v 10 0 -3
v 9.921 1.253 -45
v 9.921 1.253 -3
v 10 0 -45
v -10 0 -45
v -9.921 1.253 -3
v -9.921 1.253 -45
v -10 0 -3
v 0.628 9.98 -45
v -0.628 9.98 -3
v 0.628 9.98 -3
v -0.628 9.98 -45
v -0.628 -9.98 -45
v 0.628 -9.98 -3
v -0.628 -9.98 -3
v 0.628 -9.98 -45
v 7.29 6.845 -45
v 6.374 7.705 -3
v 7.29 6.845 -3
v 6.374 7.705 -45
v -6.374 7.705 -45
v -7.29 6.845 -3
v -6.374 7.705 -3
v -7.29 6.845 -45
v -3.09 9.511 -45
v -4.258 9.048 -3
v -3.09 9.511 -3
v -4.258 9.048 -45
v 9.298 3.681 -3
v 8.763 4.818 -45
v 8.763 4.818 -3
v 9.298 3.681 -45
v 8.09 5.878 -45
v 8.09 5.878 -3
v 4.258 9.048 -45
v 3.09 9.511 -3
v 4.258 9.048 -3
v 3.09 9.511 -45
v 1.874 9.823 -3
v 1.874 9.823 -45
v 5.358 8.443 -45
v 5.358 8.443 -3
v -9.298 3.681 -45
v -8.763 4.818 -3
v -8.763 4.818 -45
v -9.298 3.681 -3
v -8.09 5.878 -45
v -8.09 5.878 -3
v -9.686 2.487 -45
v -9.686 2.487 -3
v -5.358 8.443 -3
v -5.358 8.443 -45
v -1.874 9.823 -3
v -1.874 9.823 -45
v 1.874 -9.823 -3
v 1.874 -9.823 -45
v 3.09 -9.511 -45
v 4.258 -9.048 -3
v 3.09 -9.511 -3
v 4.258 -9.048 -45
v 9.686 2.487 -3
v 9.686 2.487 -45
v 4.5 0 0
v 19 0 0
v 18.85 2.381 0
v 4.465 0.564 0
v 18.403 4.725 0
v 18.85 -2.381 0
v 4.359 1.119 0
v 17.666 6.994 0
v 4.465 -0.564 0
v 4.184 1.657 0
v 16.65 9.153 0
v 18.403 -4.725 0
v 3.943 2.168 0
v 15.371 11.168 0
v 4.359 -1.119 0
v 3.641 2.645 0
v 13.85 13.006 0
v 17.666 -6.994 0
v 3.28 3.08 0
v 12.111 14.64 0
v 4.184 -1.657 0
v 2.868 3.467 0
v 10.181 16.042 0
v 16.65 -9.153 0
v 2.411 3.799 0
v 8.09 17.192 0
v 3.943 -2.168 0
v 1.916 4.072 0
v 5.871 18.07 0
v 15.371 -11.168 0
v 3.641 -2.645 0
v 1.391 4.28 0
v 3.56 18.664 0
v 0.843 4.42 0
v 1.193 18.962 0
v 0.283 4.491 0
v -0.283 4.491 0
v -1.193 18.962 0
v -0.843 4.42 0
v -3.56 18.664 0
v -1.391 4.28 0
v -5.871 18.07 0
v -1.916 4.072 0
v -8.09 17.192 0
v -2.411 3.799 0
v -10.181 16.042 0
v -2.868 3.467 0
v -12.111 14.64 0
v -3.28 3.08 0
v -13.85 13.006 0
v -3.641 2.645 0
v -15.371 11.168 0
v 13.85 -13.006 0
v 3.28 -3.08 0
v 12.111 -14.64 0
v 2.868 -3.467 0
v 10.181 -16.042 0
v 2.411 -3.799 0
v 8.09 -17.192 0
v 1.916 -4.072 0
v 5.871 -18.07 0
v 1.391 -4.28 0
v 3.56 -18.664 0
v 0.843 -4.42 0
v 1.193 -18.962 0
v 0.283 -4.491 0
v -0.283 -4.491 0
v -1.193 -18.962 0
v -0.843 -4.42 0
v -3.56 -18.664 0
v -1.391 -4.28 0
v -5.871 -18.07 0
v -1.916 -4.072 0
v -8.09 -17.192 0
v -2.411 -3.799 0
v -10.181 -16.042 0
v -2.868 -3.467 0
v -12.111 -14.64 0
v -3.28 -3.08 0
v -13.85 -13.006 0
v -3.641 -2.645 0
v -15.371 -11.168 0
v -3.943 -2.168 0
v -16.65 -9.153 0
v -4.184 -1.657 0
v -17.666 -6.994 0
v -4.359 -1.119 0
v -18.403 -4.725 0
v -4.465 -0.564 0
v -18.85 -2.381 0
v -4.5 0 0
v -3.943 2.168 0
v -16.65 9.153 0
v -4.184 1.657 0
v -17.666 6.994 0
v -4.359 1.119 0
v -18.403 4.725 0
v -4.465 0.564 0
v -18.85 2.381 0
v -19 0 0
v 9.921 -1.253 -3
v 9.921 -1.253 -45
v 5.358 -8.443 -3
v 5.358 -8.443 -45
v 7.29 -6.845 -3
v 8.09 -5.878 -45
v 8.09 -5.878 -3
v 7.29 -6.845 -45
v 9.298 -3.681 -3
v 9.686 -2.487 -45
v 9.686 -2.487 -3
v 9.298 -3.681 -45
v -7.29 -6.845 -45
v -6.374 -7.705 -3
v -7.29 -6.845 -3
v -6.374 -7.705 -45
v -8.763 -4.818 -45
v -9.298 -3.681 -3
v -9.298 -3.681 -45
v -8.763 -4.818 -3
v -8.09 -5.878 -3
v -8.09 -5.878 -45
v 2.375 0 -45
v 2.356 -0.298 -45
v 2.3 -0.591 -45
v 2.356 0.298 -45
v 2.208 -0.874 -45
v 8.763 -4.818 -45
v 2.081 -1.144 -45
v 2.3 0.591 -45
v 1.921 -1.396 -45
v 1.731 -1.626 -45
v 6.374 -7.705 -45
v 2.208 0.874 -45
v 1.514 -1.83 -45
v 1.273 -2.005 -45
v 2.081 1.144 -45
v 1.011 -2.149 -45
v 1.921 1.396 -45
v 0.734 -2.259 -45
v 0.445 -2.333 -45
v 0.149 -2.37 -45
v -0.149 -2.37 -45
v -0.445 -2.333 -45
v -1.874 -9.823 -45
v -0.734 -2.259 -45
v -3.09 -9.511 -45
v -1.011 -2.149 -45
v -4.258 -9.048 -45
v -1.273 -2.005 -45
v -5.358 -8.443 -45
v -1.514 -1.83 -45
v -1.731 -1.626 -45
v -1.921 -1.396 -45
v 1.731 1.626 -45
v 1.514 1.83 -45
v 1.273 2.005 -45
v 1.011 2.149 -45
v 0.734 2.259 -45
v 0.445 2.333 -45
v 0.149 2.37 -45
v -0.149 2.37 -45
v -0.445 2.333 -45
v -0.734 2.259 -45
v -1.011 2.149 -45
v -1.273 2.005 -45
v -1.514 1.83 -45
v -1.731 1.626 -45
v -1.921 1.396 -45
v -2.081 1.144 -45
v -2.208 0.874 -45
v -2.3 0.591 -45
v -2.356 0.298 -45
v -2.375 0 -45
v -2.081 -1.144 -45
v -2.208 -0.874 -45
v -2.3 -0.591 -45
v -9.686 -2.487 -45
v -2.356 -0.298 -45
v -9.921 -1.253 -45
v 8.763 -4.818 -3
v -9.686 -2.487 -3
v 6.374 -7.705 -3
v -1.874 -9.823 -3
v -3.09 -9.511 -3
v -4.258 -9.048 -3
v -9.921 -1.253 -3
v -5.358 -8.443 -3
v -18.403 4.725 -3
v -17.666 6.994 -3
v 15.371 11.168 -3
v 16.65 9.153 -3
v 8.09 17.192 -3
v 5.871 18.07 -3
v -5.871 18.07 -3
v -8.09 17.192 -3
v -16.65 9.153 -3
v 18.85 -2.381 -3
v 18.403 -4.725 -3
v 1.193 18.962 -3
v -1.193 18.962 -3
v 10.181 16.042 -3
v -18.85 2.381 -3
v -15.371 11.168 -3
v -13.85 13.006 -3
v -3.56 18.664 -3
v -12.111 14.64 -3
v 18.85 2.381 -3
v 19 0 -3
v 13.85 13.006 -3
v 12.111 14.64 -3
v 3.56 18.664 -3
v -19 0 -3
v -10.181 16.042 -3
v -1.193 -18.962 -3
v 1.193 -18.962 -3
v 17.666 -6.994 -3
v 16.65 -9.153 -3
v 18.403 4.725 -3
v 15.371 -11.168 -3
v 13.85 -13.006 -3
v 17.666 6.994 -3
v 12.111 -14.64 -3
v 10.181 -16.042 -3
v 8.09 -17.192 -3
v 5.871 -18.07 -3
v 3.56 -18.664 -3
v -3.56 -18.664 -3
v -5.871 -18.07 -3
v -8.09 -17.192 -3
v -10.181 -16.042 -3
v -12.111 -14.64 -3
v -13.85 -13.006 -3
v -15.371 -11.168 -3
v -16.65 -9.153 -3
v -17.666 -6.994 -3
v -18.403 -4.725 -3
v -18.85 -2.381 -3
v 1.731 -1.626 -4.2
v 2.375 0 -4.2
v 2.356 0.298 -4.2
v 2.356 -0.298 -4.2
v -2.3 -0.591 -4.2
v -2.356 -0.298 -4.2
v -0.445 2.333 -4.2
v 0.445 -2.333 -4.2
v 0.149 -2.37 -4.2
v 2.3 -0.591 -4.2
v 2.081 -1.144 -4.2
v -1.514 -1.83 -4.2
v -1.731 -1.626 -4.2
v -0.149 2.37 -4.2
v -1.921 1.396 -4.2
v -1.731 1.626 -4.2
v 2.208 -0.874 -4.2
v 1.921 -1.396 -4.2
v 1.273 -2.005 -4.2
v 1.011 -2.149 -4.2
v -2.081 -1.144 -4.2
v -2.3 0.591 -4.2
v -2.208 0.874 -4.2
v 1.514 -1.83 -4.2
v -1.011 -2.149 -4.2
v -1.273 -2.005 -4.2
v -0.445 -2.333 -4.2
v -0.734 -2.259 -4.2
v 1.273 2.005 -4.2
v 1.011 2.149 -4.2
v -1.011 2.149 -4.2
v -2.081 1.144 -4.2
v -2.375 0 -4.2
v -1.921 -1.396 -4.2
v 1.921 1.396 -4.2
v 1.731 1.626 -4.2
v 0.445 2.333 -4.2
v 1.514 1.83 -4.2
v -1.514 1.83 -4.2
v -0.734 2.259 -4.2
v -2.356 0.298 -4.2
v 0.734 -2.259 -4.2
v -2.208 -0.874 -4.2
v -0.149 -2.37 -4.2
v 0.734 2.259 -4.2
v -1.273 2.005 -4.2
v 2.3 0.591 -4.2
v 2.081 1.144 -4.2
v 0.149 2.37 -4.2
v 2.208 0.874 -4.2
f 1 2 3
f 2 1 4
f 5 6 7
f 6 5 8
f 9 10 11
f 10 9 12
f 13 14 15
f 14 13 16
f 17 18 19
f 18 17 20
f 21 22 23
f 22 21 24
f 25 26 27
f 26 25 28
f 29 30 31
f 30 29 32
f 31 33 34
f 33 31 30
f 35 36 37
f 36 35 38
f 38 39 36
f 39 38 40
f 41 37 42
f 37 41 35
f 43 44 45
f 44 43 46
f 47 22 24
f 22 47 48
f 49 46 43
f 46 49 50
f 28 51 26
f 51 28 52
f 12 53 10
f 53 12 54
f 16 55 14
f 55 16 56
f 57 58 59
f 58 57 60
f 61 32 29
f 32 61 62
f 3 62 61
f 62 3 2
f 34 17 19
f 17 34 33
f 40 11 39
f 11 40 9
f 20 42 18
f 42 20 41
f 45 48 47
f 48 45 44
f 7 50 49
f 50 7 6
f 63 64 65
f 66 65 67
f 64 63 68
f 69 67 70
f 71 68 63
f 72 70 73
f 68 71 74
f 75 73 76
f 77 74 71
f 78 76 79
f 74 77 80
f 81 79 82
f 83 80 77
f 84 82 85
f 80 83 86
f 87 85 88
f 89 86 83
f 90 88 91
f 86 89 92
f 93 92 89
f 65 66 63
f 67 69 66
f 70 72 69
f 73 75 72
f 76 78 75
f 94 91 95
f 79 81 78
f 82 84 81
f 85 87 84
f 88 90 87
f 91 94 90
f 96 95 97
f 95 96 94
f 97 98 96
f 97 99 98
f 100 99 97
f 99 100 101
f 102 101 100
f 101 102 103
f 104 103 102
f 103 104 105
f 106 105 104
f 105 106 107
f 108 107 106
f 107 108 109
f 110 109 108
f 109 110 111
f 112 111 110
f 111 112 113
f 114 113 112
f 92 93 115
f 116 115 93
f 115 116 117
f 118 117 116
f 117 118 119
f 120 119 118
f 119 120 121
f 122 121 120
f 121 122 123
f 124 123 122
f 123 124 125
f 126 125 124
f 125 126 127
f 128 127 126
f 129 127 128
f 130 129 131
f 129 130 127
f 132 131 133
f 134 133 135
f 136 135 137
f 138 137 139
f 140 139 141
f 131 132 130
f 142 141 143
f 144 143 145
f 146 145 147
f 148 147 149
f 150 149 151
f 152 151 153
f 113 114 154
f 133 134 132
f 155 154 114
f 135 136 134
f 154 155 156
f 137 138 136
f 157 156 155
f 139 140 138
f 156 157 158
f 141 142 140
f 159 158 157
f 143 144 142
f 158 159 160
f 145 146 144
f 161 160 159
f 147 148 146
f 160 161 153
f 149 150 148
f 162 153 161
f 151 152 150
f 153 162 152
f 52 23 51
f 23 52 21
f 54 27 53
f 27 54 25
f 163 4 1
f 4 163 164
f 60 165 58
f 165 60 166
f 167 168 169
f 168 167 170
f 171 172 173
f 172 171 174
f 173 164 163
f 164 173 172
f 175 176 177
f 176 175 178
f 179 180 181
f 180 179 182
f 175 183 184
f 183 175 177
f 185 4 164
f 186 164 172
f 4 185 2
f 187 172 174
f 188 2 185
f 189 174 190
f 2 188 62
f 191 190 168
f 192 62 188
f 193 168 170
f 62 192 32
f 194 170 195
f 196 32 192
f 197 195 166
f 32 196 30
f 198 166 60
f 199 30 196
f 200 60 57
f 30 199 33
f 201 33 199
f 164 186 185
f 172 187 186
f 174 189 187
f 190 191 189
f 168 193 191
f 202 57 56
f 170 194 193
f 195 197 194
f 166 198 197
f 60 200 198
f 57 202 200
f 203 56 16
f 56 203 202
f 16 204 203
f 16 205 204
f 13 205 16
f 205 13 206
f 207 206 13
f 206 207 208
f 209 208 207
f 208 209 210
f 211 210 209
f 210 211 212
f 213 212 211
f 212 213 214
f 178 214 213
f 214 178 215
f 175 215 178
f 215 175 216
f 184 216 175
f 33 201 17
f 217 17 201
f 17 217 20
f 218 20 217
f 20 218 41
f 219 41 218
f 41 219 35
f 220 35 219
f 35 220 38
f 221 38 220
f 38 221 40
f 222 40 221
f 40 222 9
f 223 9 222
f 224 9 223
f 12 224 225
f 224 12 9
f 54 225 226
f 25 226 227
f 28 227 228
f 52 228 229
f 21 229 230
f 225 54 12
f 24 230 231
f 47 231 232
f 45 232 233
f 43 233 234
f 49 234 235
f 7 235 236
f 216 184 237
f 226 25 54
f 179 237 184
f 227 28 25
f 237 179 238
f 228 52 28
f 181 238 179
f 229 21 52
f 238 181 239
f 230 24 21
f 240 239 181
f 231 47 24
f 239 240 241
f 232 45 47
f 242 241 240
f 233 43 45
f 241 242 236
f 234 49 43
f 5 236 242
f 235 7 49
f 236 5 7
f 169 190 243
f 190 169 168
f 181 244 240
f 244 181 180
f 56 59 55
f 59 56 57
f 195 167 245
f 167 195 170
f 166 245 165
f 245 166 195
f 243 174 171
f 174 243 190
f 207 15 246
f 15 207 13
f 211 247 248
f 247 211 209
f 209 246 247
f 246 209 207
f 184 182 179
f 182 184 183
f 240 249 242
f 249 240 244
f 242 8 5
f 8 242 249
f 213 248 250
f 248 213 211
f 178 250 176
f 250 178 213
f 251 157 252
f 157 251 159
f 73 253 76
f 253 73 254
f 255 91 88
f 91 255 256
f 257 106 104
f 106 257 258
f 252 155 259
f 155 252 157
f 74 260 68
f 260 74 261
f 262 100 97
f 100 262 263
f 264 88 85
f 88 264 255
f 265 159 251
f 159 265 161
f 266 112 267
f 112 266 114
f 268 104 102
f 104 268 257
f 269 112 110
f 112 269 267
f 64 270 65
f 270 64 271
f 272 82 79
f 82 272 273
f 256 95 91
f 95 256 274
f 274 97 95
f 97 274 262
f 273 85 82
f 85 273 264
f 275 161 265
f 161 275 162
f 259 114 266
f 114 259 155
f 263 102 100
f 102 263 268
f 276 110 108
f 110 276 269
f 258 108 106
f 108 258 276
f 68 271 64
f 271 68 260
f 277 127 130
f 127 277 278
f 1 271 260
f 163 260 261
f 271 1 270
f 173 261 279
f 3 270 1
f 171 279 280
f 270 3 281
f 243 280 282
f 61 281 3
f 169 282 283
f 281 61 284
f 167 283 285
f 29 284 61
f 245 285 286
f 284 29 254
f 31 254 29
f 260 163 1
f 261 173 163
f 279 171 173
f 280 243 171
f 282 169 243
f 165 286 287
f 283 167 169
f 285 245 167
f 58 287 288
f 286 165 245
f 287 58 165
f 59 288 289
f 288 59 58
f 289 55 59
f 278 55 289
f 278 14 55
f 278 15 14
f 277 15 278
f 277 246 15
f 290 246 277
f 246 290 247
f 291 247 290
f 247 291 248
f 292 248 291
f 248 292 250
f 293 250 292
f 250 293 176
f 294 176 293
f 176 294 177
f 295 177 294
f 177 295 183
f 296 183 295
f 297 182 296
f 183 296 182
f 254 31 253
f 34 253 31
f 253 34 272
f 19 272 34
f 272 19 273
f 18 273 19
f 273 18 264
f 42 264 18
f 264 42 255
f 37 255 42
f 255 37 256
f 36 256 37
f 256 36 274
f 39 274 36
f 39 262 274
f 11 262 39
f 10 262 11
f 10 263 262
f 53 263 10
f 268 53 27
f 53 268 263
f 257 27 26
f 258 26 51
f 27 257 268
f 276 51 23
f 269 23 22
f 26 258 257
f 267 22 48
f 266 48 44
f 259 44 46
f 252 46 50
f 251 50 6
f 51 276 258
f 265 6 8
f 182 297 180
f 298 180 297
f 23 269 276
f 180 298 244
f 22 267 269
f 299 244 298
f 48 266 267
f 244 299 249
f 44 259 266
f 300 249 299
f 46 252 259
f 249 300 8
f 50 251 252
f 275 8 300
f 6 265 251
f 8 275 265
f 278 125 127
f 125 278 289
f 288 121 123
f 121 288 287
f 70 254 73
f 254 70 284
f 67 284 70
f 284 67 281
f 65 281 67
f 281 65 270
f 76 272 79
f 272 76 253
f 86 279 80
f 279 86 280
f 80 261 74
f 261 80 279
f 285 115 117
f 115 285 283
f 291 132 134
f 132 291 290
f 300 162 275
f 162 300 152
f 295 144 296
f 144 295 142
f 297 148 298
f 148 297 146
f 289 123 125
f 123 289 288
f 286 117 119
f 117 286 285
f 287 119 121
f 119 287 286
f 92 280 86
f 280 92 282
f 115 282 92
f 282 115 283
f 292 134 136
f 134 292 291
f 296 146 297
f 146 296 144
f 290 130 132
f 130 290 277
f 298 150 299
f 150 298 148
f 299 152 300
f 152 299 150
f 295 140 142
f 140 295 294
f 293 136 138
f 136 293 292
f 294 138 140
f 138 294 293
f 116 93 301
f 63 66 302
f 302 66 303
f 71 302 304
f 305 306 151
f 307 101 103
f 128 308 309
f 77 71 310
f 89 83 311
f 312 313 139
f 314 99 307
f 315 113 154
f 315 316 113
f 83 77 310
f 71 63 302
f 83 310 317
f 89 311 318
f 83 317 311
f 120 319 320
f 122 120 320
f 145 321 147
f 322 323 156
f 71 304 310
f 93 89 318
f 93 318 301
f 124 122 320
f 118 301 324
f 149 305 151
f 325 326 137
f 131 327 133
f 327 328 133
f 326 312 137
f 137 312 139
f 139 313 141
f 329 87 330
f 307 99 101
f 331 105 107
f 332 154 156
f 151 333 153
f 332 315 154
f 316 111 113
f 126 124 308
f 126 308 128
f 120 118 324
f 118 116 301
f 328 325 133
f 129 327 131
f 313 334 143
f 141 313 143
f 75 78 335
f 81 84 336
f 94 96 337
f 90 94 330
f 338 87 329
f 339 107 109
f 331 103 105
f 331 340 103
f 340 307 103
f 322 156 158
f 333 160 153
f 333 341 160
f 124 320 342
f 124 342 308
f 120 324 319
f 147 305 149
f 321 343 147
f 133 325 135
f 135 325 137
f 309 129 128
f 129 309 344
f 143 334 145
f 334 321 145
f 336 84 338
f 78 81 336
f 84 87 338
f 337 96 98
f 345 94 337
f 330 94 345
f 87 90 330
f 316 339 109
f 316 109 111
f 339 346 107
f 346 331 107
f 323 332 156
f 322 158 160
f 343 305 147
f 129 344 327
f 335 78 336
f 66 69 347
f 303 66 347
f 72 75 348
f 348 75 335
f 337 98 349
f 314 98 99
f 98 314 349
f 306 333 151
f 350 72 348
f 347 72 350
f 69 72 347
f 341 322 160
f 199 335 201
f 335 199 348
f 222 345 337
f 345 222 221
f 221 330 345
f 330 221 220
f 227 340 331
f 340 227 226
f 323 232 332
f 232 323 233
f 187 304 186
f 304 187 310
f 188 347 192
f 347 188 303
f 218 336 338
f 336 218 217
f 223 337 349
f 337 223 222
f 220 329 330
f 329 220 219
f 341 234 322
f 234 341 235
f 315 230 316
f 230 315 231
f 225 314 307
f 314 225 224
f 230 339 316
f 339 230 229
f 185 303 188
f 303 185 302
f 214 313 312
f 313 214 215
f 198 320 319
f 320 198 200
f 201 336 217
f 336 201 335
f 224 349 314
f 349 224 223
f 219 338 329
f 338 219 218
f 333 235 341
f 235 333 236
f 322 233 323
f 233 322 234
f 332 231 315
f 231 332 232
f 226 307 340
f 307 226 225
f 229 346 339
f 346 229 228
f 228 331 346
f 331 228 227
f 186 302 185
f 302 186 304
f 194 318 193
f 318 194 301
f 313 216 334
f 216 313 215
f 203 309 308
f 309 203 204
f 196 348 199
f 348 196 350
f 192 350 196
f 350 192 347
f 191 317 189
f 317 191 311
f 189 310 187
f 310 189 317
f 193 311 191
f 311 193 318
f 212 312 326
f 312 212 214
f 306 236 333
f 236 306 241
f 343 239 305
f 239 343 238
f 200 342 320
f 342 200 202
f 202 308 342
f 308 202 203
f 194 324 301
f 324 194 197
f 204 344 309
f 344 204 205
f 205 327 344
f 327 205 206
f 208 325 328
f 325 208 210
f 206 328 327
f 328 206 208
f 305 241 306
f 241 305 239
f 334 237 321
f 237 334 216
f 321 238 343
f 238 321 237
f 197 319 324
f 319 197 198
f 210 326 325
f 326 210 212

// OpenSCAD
$fn = 50;


difference() {
	union() {
		translate(v = [0, 0, -45.0000000000]) {
			cylinder(h = 45, r = 10.0000000000);
		}
		translate(v = [0, 0, -3.0000000000]) {
			cylinder(h = 3, r = 19.0000000000);
		}
	}
	union() {
		translate(v = [0, 0, 0]) {
			rotate(a = [0, 0, 0]) {
				difference() {
					union() {
						#translate(v = [0, 0, -45.0000000000]) {
							cylinder(h = 45, r = 2.2500000000);
						}
						#translate(v = [0, 0, -4.2000000000]) {
							cylinder(h = 4.2000000000, r = 10.0000000000, r1 = 2.3750000000, r2 = 4.5000000000);
						}
						#translate(v = [0, 0, -45.0000000000]) {
							cylinder(h = 45, r = 2.3750000000);
						}
						#translate(v = [0, 0, -45.0000000000]) {
							cylinder(h = 45, r = 2.2500000000);
						}
					}
					union();
				}
			}
		}
	}
}
